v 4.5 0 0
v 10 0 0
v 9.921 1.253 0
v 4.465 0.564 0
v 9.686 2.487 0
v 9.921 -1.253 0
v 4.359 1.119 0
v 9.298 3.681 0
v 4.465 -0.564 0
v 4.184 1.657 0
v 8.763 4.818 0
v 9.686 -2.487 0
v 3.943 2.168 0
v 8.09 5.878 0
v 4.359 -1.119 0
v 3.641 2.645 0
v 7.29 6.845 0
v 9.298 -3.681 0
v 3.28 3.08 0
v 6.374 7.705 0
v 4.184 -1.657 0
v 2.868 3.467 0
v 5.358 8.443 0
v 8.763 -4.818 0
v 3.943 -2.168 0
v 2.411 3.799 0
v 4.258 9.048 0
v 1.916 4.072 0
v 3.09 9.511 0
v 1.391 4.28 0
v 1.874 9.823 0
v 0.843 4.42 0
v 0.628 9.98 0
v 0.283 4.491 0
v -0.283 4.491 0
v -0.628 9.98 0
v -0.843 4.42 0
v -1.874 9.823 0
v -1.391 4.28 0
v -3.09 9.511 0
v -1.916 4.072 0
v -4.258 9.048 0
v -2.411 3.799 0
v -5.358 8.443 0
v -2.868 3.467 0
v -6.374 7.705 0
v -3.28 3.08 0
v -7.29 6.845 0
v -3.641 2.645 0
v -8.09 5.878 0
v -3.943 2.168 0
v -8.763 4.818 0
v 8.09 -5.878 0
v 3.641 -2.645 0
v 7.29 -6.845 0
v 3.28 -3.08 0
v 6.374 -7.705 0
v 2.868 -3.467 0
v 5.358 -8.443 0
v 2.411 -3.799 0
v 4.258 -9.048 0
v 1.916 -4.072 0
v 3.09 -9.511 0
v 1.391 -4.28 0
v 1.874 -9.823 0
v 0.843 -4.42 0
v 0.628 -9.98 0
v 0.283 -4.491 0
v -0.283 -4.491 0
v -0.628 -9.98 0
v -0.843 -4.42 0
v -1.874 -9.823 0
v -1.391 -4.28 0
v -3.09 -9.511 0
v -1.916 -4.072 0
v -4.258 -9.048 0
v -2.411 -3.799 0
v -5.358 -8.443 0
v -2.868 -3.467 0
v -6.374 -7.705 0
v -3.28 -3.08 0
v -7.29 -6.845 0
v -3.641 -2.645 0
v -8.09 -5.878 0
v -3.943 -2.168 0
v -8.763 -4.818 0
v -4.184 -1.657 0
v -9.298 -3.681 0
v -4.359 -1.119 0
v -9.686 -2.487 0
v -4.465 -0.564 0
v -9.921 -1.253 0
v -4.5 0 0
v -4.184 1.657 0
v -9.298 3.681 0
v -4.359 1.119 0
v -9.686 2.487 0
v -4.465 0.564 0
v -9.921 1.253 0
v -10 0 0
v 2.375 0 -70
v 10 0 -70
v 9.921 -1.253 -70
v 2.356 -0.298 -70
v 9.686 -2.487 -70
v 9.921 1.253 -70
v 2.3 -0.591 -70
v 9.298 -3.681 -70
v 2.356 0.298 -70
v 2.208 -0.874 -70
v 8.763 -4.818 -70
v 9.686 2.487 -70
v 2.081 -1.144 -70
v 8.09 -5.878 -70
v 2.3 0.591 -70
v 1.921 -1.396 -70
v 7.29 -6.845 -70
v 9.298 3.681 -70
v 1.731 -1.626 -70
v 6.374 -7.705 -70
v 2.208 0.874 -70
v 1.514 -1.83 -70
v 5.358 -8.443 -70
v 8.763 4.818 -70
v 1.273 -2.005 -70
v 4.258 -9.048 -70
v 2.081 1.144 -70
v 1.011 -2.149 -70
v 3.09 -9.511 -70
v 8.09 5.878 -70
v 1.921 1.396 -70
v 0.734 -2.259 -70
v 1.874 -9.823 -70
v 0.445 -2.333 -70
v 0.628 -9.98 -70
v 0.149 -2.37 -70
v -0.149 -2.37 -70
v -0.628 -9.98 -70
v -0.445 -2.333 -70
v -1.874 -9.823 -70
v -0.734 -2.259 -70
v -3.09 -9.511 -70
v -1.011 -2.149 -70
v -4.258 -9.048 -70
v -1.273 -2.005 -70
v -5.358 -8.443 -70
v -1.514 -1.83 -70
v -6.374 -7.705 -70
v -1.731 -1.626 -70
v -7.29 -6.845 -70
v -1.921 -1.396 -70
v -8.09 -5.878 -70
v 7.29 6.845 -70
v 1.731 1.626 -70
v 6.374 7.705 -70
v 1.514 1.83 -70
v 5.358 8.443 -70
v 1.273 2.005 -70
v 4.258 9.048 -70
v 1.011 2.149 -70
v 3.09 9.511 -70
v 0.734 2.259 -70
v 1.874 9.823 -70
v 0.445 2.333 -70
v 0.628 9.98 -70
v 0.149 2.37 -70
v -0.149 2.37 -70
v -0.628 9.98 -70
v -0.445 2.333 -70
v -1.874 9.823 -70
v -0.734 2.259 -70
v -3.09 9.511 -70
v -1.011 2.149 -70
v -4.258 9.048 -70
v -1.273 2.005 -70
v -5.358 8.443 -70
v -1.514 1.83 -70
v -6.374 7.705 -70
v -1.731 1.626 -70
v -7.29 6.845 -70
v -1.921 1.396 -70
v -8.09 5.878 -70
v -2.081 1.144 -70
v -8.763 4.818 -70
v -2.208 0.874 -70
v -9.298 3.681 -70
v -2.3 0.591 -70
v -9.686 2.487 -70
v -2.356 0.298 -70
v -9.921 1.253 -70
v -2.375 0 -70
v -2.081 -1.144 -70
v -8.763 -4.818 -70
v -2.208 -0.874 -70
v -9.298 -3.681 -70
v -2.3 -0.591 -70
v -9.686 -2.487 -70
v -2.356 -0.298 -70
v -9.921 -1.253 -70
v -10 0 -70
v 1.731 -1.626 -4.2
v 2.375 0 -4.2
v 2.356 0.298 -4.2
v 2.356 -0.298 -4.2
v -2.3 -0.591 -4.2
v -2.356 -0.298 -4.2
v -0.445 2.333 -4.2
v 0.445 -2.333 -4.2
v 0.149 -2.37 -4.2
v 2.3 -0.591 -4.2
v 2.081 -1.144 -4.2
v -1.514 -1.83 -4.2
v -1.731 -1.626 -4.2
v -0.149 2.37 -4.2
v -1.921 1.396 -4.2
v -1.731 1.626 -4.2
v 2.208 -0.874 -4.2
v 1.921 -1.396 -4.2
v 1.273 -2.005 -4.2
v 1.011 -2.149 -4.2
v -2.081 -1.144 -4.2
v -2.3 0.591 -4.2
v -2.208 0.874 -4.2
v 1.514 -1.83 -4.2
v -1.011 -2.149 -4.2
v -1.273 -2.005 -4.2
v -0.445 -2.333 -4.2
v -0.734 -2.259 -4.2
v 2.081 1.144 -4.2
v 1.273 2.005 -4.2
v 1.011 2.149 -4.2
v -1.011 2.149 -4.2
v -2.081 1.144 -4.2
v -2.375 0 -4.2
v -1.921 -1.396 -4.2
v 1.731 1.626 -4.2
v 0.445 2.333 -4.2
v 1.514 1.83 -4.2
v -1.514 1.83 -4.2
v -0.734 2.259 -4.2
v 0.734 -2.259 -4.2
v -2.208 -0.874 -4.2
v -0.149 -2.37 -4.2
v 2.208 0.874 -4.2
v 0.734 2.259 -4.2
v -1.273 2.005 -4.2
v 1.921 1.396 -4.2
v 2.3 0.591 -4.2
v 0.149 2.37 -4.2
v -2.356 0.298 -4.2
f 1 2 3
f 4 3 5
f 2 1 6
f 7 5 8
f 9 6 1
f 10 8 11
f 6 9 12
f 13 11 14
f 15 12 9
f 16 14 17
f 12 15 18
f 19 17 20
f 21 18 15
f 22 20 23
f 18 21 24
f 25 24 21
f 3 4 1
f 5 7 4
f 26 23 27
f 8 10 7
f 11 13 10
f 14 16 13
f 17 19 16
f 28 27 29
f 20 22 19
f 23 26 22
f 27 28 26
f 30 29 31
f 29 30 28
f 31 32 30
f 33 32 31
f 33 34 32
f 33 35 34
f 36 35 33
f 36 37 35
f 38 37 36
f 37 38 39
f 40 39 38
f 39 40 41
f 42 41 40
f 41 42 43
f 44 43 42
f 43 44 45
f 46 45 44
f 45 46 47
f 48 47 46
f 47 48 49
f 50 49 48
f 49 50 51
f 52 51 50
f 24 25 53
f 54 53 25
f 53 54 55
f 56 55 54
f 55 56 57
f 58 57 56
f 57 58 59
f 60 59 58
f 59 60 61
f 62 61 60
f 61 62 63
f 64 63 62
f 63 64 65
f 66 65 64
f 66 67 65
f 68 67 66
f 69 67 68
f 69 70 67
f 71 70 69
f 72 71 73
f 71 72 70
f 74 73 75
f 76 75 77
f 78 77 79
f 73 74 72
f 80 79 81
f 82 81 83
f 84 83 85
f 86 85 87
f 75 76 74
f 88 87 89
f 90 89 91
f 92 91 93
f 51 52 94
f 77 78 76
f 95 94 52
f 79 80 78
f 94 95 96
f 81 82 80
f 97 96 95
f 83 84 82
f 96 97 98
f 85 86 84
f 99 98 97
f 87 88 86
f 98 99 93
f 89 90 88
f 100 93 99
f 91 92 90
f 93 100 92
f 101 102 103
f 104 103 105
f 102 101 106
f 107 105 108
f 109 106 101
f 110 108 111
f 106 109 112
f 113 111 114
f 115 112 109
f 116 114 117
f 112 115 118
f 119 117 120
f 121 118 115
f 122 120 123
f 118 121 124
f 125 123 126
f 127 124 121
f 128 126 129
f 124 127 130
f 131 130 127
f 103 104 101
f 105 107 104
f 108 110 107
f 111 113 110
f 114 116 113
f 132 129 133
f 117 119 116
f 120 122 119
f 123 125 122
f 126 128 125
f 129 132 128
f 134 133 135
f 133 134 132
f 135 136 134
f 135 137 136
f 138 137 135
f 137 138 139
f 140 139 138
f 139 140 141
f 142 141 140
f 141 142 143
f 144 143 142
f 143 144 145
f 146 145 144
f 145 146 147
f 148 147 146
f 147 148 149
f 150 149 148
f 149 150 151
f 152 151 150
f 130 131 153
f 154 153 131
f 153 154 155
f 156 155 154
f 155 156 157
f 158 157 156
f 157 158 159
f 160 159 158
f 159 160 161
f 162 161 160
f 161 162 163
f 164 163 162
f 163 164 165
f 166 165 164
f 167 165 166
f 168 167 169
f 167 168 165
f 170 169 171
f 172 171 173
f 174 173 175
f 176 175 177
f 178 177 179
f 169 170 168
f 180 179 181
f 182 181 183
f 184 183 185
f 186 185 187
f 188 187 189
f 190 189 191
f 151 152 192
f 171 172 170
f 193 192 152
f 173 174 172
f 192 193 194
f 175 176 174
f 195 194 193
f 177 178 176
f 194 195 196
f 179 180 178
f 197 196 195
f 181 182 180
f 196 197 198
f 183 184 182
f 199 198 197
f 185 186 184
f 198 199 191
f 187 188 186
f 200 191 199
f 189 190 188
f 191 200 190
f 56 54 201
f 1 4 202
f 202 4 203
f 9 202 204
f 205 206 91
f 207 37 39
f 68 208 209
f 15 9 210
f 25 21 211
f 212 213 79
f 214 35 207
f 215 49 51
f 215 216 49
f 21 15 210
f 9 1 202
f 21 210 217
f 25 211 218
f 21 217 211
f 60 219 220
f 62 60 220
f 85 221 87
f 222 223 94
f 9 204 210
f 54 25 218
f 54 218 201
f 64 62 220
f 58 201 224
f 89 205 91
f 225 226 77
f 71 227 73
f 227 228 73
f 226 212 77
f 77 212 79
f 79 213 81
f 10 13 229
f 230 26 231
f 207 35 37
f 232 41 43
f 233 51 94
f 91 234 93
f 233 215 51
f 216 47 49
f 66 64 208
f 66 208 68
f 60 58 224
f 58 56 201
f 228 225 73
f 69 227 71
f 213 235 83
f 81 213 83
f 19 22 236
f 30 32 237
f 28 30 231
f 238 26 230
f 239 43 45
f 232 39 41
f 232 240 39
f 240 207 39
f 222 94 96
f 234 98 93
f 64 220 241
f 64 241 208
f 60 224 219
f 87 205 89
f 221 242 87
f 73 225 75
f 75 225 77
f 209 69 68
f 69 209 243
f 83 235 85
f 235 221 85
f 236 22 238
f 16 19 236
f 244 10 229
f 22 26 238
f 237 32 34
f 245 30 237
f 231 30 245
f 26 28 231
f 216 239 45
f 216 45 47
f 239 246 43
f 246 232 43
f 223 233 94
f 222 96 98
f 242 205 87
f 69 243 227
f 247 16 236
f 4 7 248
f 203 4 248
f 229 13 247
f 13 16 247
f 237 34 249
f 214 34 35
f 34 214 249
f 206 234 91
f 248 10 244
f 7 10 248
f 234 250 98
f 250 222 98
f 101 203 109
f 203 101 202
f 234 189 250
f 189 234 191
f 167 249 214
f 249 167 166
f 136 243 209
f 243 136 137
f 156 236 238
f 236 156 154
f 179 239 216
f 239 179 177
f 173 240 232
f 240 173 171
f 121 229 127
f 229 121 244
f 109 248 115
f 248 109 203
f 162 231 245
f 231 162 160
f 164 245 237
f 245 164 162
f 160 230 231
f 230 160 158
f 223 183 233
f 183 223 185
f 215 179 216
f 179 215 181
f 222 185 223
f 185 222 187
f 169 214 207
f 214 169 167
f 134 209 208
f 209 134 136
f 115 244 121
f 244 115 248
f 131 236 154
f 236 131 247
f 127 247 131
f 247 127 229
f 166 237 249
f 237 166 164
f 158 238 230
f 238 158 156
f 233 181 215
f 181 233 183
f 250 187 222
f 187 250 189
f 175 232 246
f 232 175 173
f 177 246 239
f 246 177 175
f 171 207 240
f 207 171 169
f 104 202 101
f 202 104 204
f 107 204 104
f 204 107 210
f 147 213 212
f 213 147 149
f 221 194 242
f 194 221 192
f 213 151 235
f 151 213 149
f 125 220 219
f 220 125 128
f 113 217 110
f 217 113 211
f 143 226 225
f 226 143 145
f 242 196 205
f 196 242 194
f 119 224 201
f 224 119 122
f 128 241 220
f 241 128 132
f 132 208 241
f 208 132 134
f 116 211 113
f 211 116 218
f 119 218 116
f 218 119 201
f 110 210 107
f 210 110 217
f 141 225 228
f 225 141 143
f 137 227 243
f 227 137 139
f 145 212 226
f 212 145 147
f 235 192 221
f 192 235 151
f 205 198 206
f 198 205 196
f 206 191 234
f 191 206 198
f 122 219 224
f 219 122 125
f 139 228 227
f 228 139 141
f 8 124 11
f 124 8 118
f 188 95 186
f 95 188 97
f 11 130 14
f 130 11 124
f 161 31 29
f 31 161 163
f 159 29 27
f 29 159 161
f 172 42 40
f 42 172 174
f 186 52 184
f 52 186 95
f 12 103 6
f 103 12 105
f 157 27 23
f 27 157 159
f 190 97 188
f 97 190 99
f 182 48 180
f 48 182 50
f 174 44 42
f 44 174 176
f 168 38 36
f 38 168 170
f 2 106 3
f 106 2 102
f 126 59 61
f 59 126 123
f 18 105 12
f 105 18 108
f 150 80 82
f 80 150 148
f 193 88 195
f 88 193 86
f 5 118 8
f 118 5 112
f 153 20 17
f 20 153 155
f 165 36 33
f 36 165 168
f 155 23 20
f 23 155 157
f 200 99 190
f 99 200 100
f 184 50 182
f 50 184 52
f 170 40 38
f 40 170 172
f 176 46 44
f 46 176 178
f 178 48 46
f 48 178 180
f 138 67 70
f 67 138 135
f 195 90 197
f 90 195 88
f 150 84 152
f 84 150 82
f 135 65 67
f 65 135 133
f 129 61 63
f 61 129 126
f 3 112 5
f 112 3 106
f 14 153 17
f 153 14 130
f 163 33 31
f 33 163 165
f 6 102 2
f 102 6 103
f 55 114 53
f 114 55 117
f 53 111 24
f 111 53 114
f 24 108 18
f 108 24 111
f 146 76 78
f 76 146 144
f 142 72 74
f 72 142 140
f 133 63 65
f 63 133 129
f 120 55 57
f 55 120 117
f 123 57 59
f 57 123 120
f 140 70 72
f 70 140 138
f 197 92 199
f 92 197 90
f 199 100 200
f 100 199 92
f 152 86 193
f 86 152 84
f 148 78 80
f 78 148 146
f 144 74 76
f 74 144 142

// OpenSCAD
$fn = 50;


difference() {
	union() {
		translate(v = [0, 0, -70.0000000000]) {
			cylinder(h = 70, r = 10.0000000000);
		}
		cylinder(h = 0, r = 16.0000000000);
	}
	union() {
		translate(v = [0, 0, 0]) {
			rotate(a = [0, 0, 0]) {
				difference() {
					union() {
						#translate(v = [0, 0, -70.0000000000]) {
							cylinder(h = 70, r = 2.2500000000);
						}
						#translate(v = [0, 0, -4.2000000000]) {
							cylinder(h = 4.2000000000, r = 10.0000000000, r1 = 2.3750000000, r2 = 4.5000000000);
						}
						#translate(v = [0, 0, -70.0000000000]) {
							cylinder(h = 70, r = 2.3750000000);
						}
						#translate(v = [0, 0, -70.0000000000]) {
							cylinder(h = 70, r = 2.2500000000);
						}
					}
					union();
				}
			}
		}
	}
}
